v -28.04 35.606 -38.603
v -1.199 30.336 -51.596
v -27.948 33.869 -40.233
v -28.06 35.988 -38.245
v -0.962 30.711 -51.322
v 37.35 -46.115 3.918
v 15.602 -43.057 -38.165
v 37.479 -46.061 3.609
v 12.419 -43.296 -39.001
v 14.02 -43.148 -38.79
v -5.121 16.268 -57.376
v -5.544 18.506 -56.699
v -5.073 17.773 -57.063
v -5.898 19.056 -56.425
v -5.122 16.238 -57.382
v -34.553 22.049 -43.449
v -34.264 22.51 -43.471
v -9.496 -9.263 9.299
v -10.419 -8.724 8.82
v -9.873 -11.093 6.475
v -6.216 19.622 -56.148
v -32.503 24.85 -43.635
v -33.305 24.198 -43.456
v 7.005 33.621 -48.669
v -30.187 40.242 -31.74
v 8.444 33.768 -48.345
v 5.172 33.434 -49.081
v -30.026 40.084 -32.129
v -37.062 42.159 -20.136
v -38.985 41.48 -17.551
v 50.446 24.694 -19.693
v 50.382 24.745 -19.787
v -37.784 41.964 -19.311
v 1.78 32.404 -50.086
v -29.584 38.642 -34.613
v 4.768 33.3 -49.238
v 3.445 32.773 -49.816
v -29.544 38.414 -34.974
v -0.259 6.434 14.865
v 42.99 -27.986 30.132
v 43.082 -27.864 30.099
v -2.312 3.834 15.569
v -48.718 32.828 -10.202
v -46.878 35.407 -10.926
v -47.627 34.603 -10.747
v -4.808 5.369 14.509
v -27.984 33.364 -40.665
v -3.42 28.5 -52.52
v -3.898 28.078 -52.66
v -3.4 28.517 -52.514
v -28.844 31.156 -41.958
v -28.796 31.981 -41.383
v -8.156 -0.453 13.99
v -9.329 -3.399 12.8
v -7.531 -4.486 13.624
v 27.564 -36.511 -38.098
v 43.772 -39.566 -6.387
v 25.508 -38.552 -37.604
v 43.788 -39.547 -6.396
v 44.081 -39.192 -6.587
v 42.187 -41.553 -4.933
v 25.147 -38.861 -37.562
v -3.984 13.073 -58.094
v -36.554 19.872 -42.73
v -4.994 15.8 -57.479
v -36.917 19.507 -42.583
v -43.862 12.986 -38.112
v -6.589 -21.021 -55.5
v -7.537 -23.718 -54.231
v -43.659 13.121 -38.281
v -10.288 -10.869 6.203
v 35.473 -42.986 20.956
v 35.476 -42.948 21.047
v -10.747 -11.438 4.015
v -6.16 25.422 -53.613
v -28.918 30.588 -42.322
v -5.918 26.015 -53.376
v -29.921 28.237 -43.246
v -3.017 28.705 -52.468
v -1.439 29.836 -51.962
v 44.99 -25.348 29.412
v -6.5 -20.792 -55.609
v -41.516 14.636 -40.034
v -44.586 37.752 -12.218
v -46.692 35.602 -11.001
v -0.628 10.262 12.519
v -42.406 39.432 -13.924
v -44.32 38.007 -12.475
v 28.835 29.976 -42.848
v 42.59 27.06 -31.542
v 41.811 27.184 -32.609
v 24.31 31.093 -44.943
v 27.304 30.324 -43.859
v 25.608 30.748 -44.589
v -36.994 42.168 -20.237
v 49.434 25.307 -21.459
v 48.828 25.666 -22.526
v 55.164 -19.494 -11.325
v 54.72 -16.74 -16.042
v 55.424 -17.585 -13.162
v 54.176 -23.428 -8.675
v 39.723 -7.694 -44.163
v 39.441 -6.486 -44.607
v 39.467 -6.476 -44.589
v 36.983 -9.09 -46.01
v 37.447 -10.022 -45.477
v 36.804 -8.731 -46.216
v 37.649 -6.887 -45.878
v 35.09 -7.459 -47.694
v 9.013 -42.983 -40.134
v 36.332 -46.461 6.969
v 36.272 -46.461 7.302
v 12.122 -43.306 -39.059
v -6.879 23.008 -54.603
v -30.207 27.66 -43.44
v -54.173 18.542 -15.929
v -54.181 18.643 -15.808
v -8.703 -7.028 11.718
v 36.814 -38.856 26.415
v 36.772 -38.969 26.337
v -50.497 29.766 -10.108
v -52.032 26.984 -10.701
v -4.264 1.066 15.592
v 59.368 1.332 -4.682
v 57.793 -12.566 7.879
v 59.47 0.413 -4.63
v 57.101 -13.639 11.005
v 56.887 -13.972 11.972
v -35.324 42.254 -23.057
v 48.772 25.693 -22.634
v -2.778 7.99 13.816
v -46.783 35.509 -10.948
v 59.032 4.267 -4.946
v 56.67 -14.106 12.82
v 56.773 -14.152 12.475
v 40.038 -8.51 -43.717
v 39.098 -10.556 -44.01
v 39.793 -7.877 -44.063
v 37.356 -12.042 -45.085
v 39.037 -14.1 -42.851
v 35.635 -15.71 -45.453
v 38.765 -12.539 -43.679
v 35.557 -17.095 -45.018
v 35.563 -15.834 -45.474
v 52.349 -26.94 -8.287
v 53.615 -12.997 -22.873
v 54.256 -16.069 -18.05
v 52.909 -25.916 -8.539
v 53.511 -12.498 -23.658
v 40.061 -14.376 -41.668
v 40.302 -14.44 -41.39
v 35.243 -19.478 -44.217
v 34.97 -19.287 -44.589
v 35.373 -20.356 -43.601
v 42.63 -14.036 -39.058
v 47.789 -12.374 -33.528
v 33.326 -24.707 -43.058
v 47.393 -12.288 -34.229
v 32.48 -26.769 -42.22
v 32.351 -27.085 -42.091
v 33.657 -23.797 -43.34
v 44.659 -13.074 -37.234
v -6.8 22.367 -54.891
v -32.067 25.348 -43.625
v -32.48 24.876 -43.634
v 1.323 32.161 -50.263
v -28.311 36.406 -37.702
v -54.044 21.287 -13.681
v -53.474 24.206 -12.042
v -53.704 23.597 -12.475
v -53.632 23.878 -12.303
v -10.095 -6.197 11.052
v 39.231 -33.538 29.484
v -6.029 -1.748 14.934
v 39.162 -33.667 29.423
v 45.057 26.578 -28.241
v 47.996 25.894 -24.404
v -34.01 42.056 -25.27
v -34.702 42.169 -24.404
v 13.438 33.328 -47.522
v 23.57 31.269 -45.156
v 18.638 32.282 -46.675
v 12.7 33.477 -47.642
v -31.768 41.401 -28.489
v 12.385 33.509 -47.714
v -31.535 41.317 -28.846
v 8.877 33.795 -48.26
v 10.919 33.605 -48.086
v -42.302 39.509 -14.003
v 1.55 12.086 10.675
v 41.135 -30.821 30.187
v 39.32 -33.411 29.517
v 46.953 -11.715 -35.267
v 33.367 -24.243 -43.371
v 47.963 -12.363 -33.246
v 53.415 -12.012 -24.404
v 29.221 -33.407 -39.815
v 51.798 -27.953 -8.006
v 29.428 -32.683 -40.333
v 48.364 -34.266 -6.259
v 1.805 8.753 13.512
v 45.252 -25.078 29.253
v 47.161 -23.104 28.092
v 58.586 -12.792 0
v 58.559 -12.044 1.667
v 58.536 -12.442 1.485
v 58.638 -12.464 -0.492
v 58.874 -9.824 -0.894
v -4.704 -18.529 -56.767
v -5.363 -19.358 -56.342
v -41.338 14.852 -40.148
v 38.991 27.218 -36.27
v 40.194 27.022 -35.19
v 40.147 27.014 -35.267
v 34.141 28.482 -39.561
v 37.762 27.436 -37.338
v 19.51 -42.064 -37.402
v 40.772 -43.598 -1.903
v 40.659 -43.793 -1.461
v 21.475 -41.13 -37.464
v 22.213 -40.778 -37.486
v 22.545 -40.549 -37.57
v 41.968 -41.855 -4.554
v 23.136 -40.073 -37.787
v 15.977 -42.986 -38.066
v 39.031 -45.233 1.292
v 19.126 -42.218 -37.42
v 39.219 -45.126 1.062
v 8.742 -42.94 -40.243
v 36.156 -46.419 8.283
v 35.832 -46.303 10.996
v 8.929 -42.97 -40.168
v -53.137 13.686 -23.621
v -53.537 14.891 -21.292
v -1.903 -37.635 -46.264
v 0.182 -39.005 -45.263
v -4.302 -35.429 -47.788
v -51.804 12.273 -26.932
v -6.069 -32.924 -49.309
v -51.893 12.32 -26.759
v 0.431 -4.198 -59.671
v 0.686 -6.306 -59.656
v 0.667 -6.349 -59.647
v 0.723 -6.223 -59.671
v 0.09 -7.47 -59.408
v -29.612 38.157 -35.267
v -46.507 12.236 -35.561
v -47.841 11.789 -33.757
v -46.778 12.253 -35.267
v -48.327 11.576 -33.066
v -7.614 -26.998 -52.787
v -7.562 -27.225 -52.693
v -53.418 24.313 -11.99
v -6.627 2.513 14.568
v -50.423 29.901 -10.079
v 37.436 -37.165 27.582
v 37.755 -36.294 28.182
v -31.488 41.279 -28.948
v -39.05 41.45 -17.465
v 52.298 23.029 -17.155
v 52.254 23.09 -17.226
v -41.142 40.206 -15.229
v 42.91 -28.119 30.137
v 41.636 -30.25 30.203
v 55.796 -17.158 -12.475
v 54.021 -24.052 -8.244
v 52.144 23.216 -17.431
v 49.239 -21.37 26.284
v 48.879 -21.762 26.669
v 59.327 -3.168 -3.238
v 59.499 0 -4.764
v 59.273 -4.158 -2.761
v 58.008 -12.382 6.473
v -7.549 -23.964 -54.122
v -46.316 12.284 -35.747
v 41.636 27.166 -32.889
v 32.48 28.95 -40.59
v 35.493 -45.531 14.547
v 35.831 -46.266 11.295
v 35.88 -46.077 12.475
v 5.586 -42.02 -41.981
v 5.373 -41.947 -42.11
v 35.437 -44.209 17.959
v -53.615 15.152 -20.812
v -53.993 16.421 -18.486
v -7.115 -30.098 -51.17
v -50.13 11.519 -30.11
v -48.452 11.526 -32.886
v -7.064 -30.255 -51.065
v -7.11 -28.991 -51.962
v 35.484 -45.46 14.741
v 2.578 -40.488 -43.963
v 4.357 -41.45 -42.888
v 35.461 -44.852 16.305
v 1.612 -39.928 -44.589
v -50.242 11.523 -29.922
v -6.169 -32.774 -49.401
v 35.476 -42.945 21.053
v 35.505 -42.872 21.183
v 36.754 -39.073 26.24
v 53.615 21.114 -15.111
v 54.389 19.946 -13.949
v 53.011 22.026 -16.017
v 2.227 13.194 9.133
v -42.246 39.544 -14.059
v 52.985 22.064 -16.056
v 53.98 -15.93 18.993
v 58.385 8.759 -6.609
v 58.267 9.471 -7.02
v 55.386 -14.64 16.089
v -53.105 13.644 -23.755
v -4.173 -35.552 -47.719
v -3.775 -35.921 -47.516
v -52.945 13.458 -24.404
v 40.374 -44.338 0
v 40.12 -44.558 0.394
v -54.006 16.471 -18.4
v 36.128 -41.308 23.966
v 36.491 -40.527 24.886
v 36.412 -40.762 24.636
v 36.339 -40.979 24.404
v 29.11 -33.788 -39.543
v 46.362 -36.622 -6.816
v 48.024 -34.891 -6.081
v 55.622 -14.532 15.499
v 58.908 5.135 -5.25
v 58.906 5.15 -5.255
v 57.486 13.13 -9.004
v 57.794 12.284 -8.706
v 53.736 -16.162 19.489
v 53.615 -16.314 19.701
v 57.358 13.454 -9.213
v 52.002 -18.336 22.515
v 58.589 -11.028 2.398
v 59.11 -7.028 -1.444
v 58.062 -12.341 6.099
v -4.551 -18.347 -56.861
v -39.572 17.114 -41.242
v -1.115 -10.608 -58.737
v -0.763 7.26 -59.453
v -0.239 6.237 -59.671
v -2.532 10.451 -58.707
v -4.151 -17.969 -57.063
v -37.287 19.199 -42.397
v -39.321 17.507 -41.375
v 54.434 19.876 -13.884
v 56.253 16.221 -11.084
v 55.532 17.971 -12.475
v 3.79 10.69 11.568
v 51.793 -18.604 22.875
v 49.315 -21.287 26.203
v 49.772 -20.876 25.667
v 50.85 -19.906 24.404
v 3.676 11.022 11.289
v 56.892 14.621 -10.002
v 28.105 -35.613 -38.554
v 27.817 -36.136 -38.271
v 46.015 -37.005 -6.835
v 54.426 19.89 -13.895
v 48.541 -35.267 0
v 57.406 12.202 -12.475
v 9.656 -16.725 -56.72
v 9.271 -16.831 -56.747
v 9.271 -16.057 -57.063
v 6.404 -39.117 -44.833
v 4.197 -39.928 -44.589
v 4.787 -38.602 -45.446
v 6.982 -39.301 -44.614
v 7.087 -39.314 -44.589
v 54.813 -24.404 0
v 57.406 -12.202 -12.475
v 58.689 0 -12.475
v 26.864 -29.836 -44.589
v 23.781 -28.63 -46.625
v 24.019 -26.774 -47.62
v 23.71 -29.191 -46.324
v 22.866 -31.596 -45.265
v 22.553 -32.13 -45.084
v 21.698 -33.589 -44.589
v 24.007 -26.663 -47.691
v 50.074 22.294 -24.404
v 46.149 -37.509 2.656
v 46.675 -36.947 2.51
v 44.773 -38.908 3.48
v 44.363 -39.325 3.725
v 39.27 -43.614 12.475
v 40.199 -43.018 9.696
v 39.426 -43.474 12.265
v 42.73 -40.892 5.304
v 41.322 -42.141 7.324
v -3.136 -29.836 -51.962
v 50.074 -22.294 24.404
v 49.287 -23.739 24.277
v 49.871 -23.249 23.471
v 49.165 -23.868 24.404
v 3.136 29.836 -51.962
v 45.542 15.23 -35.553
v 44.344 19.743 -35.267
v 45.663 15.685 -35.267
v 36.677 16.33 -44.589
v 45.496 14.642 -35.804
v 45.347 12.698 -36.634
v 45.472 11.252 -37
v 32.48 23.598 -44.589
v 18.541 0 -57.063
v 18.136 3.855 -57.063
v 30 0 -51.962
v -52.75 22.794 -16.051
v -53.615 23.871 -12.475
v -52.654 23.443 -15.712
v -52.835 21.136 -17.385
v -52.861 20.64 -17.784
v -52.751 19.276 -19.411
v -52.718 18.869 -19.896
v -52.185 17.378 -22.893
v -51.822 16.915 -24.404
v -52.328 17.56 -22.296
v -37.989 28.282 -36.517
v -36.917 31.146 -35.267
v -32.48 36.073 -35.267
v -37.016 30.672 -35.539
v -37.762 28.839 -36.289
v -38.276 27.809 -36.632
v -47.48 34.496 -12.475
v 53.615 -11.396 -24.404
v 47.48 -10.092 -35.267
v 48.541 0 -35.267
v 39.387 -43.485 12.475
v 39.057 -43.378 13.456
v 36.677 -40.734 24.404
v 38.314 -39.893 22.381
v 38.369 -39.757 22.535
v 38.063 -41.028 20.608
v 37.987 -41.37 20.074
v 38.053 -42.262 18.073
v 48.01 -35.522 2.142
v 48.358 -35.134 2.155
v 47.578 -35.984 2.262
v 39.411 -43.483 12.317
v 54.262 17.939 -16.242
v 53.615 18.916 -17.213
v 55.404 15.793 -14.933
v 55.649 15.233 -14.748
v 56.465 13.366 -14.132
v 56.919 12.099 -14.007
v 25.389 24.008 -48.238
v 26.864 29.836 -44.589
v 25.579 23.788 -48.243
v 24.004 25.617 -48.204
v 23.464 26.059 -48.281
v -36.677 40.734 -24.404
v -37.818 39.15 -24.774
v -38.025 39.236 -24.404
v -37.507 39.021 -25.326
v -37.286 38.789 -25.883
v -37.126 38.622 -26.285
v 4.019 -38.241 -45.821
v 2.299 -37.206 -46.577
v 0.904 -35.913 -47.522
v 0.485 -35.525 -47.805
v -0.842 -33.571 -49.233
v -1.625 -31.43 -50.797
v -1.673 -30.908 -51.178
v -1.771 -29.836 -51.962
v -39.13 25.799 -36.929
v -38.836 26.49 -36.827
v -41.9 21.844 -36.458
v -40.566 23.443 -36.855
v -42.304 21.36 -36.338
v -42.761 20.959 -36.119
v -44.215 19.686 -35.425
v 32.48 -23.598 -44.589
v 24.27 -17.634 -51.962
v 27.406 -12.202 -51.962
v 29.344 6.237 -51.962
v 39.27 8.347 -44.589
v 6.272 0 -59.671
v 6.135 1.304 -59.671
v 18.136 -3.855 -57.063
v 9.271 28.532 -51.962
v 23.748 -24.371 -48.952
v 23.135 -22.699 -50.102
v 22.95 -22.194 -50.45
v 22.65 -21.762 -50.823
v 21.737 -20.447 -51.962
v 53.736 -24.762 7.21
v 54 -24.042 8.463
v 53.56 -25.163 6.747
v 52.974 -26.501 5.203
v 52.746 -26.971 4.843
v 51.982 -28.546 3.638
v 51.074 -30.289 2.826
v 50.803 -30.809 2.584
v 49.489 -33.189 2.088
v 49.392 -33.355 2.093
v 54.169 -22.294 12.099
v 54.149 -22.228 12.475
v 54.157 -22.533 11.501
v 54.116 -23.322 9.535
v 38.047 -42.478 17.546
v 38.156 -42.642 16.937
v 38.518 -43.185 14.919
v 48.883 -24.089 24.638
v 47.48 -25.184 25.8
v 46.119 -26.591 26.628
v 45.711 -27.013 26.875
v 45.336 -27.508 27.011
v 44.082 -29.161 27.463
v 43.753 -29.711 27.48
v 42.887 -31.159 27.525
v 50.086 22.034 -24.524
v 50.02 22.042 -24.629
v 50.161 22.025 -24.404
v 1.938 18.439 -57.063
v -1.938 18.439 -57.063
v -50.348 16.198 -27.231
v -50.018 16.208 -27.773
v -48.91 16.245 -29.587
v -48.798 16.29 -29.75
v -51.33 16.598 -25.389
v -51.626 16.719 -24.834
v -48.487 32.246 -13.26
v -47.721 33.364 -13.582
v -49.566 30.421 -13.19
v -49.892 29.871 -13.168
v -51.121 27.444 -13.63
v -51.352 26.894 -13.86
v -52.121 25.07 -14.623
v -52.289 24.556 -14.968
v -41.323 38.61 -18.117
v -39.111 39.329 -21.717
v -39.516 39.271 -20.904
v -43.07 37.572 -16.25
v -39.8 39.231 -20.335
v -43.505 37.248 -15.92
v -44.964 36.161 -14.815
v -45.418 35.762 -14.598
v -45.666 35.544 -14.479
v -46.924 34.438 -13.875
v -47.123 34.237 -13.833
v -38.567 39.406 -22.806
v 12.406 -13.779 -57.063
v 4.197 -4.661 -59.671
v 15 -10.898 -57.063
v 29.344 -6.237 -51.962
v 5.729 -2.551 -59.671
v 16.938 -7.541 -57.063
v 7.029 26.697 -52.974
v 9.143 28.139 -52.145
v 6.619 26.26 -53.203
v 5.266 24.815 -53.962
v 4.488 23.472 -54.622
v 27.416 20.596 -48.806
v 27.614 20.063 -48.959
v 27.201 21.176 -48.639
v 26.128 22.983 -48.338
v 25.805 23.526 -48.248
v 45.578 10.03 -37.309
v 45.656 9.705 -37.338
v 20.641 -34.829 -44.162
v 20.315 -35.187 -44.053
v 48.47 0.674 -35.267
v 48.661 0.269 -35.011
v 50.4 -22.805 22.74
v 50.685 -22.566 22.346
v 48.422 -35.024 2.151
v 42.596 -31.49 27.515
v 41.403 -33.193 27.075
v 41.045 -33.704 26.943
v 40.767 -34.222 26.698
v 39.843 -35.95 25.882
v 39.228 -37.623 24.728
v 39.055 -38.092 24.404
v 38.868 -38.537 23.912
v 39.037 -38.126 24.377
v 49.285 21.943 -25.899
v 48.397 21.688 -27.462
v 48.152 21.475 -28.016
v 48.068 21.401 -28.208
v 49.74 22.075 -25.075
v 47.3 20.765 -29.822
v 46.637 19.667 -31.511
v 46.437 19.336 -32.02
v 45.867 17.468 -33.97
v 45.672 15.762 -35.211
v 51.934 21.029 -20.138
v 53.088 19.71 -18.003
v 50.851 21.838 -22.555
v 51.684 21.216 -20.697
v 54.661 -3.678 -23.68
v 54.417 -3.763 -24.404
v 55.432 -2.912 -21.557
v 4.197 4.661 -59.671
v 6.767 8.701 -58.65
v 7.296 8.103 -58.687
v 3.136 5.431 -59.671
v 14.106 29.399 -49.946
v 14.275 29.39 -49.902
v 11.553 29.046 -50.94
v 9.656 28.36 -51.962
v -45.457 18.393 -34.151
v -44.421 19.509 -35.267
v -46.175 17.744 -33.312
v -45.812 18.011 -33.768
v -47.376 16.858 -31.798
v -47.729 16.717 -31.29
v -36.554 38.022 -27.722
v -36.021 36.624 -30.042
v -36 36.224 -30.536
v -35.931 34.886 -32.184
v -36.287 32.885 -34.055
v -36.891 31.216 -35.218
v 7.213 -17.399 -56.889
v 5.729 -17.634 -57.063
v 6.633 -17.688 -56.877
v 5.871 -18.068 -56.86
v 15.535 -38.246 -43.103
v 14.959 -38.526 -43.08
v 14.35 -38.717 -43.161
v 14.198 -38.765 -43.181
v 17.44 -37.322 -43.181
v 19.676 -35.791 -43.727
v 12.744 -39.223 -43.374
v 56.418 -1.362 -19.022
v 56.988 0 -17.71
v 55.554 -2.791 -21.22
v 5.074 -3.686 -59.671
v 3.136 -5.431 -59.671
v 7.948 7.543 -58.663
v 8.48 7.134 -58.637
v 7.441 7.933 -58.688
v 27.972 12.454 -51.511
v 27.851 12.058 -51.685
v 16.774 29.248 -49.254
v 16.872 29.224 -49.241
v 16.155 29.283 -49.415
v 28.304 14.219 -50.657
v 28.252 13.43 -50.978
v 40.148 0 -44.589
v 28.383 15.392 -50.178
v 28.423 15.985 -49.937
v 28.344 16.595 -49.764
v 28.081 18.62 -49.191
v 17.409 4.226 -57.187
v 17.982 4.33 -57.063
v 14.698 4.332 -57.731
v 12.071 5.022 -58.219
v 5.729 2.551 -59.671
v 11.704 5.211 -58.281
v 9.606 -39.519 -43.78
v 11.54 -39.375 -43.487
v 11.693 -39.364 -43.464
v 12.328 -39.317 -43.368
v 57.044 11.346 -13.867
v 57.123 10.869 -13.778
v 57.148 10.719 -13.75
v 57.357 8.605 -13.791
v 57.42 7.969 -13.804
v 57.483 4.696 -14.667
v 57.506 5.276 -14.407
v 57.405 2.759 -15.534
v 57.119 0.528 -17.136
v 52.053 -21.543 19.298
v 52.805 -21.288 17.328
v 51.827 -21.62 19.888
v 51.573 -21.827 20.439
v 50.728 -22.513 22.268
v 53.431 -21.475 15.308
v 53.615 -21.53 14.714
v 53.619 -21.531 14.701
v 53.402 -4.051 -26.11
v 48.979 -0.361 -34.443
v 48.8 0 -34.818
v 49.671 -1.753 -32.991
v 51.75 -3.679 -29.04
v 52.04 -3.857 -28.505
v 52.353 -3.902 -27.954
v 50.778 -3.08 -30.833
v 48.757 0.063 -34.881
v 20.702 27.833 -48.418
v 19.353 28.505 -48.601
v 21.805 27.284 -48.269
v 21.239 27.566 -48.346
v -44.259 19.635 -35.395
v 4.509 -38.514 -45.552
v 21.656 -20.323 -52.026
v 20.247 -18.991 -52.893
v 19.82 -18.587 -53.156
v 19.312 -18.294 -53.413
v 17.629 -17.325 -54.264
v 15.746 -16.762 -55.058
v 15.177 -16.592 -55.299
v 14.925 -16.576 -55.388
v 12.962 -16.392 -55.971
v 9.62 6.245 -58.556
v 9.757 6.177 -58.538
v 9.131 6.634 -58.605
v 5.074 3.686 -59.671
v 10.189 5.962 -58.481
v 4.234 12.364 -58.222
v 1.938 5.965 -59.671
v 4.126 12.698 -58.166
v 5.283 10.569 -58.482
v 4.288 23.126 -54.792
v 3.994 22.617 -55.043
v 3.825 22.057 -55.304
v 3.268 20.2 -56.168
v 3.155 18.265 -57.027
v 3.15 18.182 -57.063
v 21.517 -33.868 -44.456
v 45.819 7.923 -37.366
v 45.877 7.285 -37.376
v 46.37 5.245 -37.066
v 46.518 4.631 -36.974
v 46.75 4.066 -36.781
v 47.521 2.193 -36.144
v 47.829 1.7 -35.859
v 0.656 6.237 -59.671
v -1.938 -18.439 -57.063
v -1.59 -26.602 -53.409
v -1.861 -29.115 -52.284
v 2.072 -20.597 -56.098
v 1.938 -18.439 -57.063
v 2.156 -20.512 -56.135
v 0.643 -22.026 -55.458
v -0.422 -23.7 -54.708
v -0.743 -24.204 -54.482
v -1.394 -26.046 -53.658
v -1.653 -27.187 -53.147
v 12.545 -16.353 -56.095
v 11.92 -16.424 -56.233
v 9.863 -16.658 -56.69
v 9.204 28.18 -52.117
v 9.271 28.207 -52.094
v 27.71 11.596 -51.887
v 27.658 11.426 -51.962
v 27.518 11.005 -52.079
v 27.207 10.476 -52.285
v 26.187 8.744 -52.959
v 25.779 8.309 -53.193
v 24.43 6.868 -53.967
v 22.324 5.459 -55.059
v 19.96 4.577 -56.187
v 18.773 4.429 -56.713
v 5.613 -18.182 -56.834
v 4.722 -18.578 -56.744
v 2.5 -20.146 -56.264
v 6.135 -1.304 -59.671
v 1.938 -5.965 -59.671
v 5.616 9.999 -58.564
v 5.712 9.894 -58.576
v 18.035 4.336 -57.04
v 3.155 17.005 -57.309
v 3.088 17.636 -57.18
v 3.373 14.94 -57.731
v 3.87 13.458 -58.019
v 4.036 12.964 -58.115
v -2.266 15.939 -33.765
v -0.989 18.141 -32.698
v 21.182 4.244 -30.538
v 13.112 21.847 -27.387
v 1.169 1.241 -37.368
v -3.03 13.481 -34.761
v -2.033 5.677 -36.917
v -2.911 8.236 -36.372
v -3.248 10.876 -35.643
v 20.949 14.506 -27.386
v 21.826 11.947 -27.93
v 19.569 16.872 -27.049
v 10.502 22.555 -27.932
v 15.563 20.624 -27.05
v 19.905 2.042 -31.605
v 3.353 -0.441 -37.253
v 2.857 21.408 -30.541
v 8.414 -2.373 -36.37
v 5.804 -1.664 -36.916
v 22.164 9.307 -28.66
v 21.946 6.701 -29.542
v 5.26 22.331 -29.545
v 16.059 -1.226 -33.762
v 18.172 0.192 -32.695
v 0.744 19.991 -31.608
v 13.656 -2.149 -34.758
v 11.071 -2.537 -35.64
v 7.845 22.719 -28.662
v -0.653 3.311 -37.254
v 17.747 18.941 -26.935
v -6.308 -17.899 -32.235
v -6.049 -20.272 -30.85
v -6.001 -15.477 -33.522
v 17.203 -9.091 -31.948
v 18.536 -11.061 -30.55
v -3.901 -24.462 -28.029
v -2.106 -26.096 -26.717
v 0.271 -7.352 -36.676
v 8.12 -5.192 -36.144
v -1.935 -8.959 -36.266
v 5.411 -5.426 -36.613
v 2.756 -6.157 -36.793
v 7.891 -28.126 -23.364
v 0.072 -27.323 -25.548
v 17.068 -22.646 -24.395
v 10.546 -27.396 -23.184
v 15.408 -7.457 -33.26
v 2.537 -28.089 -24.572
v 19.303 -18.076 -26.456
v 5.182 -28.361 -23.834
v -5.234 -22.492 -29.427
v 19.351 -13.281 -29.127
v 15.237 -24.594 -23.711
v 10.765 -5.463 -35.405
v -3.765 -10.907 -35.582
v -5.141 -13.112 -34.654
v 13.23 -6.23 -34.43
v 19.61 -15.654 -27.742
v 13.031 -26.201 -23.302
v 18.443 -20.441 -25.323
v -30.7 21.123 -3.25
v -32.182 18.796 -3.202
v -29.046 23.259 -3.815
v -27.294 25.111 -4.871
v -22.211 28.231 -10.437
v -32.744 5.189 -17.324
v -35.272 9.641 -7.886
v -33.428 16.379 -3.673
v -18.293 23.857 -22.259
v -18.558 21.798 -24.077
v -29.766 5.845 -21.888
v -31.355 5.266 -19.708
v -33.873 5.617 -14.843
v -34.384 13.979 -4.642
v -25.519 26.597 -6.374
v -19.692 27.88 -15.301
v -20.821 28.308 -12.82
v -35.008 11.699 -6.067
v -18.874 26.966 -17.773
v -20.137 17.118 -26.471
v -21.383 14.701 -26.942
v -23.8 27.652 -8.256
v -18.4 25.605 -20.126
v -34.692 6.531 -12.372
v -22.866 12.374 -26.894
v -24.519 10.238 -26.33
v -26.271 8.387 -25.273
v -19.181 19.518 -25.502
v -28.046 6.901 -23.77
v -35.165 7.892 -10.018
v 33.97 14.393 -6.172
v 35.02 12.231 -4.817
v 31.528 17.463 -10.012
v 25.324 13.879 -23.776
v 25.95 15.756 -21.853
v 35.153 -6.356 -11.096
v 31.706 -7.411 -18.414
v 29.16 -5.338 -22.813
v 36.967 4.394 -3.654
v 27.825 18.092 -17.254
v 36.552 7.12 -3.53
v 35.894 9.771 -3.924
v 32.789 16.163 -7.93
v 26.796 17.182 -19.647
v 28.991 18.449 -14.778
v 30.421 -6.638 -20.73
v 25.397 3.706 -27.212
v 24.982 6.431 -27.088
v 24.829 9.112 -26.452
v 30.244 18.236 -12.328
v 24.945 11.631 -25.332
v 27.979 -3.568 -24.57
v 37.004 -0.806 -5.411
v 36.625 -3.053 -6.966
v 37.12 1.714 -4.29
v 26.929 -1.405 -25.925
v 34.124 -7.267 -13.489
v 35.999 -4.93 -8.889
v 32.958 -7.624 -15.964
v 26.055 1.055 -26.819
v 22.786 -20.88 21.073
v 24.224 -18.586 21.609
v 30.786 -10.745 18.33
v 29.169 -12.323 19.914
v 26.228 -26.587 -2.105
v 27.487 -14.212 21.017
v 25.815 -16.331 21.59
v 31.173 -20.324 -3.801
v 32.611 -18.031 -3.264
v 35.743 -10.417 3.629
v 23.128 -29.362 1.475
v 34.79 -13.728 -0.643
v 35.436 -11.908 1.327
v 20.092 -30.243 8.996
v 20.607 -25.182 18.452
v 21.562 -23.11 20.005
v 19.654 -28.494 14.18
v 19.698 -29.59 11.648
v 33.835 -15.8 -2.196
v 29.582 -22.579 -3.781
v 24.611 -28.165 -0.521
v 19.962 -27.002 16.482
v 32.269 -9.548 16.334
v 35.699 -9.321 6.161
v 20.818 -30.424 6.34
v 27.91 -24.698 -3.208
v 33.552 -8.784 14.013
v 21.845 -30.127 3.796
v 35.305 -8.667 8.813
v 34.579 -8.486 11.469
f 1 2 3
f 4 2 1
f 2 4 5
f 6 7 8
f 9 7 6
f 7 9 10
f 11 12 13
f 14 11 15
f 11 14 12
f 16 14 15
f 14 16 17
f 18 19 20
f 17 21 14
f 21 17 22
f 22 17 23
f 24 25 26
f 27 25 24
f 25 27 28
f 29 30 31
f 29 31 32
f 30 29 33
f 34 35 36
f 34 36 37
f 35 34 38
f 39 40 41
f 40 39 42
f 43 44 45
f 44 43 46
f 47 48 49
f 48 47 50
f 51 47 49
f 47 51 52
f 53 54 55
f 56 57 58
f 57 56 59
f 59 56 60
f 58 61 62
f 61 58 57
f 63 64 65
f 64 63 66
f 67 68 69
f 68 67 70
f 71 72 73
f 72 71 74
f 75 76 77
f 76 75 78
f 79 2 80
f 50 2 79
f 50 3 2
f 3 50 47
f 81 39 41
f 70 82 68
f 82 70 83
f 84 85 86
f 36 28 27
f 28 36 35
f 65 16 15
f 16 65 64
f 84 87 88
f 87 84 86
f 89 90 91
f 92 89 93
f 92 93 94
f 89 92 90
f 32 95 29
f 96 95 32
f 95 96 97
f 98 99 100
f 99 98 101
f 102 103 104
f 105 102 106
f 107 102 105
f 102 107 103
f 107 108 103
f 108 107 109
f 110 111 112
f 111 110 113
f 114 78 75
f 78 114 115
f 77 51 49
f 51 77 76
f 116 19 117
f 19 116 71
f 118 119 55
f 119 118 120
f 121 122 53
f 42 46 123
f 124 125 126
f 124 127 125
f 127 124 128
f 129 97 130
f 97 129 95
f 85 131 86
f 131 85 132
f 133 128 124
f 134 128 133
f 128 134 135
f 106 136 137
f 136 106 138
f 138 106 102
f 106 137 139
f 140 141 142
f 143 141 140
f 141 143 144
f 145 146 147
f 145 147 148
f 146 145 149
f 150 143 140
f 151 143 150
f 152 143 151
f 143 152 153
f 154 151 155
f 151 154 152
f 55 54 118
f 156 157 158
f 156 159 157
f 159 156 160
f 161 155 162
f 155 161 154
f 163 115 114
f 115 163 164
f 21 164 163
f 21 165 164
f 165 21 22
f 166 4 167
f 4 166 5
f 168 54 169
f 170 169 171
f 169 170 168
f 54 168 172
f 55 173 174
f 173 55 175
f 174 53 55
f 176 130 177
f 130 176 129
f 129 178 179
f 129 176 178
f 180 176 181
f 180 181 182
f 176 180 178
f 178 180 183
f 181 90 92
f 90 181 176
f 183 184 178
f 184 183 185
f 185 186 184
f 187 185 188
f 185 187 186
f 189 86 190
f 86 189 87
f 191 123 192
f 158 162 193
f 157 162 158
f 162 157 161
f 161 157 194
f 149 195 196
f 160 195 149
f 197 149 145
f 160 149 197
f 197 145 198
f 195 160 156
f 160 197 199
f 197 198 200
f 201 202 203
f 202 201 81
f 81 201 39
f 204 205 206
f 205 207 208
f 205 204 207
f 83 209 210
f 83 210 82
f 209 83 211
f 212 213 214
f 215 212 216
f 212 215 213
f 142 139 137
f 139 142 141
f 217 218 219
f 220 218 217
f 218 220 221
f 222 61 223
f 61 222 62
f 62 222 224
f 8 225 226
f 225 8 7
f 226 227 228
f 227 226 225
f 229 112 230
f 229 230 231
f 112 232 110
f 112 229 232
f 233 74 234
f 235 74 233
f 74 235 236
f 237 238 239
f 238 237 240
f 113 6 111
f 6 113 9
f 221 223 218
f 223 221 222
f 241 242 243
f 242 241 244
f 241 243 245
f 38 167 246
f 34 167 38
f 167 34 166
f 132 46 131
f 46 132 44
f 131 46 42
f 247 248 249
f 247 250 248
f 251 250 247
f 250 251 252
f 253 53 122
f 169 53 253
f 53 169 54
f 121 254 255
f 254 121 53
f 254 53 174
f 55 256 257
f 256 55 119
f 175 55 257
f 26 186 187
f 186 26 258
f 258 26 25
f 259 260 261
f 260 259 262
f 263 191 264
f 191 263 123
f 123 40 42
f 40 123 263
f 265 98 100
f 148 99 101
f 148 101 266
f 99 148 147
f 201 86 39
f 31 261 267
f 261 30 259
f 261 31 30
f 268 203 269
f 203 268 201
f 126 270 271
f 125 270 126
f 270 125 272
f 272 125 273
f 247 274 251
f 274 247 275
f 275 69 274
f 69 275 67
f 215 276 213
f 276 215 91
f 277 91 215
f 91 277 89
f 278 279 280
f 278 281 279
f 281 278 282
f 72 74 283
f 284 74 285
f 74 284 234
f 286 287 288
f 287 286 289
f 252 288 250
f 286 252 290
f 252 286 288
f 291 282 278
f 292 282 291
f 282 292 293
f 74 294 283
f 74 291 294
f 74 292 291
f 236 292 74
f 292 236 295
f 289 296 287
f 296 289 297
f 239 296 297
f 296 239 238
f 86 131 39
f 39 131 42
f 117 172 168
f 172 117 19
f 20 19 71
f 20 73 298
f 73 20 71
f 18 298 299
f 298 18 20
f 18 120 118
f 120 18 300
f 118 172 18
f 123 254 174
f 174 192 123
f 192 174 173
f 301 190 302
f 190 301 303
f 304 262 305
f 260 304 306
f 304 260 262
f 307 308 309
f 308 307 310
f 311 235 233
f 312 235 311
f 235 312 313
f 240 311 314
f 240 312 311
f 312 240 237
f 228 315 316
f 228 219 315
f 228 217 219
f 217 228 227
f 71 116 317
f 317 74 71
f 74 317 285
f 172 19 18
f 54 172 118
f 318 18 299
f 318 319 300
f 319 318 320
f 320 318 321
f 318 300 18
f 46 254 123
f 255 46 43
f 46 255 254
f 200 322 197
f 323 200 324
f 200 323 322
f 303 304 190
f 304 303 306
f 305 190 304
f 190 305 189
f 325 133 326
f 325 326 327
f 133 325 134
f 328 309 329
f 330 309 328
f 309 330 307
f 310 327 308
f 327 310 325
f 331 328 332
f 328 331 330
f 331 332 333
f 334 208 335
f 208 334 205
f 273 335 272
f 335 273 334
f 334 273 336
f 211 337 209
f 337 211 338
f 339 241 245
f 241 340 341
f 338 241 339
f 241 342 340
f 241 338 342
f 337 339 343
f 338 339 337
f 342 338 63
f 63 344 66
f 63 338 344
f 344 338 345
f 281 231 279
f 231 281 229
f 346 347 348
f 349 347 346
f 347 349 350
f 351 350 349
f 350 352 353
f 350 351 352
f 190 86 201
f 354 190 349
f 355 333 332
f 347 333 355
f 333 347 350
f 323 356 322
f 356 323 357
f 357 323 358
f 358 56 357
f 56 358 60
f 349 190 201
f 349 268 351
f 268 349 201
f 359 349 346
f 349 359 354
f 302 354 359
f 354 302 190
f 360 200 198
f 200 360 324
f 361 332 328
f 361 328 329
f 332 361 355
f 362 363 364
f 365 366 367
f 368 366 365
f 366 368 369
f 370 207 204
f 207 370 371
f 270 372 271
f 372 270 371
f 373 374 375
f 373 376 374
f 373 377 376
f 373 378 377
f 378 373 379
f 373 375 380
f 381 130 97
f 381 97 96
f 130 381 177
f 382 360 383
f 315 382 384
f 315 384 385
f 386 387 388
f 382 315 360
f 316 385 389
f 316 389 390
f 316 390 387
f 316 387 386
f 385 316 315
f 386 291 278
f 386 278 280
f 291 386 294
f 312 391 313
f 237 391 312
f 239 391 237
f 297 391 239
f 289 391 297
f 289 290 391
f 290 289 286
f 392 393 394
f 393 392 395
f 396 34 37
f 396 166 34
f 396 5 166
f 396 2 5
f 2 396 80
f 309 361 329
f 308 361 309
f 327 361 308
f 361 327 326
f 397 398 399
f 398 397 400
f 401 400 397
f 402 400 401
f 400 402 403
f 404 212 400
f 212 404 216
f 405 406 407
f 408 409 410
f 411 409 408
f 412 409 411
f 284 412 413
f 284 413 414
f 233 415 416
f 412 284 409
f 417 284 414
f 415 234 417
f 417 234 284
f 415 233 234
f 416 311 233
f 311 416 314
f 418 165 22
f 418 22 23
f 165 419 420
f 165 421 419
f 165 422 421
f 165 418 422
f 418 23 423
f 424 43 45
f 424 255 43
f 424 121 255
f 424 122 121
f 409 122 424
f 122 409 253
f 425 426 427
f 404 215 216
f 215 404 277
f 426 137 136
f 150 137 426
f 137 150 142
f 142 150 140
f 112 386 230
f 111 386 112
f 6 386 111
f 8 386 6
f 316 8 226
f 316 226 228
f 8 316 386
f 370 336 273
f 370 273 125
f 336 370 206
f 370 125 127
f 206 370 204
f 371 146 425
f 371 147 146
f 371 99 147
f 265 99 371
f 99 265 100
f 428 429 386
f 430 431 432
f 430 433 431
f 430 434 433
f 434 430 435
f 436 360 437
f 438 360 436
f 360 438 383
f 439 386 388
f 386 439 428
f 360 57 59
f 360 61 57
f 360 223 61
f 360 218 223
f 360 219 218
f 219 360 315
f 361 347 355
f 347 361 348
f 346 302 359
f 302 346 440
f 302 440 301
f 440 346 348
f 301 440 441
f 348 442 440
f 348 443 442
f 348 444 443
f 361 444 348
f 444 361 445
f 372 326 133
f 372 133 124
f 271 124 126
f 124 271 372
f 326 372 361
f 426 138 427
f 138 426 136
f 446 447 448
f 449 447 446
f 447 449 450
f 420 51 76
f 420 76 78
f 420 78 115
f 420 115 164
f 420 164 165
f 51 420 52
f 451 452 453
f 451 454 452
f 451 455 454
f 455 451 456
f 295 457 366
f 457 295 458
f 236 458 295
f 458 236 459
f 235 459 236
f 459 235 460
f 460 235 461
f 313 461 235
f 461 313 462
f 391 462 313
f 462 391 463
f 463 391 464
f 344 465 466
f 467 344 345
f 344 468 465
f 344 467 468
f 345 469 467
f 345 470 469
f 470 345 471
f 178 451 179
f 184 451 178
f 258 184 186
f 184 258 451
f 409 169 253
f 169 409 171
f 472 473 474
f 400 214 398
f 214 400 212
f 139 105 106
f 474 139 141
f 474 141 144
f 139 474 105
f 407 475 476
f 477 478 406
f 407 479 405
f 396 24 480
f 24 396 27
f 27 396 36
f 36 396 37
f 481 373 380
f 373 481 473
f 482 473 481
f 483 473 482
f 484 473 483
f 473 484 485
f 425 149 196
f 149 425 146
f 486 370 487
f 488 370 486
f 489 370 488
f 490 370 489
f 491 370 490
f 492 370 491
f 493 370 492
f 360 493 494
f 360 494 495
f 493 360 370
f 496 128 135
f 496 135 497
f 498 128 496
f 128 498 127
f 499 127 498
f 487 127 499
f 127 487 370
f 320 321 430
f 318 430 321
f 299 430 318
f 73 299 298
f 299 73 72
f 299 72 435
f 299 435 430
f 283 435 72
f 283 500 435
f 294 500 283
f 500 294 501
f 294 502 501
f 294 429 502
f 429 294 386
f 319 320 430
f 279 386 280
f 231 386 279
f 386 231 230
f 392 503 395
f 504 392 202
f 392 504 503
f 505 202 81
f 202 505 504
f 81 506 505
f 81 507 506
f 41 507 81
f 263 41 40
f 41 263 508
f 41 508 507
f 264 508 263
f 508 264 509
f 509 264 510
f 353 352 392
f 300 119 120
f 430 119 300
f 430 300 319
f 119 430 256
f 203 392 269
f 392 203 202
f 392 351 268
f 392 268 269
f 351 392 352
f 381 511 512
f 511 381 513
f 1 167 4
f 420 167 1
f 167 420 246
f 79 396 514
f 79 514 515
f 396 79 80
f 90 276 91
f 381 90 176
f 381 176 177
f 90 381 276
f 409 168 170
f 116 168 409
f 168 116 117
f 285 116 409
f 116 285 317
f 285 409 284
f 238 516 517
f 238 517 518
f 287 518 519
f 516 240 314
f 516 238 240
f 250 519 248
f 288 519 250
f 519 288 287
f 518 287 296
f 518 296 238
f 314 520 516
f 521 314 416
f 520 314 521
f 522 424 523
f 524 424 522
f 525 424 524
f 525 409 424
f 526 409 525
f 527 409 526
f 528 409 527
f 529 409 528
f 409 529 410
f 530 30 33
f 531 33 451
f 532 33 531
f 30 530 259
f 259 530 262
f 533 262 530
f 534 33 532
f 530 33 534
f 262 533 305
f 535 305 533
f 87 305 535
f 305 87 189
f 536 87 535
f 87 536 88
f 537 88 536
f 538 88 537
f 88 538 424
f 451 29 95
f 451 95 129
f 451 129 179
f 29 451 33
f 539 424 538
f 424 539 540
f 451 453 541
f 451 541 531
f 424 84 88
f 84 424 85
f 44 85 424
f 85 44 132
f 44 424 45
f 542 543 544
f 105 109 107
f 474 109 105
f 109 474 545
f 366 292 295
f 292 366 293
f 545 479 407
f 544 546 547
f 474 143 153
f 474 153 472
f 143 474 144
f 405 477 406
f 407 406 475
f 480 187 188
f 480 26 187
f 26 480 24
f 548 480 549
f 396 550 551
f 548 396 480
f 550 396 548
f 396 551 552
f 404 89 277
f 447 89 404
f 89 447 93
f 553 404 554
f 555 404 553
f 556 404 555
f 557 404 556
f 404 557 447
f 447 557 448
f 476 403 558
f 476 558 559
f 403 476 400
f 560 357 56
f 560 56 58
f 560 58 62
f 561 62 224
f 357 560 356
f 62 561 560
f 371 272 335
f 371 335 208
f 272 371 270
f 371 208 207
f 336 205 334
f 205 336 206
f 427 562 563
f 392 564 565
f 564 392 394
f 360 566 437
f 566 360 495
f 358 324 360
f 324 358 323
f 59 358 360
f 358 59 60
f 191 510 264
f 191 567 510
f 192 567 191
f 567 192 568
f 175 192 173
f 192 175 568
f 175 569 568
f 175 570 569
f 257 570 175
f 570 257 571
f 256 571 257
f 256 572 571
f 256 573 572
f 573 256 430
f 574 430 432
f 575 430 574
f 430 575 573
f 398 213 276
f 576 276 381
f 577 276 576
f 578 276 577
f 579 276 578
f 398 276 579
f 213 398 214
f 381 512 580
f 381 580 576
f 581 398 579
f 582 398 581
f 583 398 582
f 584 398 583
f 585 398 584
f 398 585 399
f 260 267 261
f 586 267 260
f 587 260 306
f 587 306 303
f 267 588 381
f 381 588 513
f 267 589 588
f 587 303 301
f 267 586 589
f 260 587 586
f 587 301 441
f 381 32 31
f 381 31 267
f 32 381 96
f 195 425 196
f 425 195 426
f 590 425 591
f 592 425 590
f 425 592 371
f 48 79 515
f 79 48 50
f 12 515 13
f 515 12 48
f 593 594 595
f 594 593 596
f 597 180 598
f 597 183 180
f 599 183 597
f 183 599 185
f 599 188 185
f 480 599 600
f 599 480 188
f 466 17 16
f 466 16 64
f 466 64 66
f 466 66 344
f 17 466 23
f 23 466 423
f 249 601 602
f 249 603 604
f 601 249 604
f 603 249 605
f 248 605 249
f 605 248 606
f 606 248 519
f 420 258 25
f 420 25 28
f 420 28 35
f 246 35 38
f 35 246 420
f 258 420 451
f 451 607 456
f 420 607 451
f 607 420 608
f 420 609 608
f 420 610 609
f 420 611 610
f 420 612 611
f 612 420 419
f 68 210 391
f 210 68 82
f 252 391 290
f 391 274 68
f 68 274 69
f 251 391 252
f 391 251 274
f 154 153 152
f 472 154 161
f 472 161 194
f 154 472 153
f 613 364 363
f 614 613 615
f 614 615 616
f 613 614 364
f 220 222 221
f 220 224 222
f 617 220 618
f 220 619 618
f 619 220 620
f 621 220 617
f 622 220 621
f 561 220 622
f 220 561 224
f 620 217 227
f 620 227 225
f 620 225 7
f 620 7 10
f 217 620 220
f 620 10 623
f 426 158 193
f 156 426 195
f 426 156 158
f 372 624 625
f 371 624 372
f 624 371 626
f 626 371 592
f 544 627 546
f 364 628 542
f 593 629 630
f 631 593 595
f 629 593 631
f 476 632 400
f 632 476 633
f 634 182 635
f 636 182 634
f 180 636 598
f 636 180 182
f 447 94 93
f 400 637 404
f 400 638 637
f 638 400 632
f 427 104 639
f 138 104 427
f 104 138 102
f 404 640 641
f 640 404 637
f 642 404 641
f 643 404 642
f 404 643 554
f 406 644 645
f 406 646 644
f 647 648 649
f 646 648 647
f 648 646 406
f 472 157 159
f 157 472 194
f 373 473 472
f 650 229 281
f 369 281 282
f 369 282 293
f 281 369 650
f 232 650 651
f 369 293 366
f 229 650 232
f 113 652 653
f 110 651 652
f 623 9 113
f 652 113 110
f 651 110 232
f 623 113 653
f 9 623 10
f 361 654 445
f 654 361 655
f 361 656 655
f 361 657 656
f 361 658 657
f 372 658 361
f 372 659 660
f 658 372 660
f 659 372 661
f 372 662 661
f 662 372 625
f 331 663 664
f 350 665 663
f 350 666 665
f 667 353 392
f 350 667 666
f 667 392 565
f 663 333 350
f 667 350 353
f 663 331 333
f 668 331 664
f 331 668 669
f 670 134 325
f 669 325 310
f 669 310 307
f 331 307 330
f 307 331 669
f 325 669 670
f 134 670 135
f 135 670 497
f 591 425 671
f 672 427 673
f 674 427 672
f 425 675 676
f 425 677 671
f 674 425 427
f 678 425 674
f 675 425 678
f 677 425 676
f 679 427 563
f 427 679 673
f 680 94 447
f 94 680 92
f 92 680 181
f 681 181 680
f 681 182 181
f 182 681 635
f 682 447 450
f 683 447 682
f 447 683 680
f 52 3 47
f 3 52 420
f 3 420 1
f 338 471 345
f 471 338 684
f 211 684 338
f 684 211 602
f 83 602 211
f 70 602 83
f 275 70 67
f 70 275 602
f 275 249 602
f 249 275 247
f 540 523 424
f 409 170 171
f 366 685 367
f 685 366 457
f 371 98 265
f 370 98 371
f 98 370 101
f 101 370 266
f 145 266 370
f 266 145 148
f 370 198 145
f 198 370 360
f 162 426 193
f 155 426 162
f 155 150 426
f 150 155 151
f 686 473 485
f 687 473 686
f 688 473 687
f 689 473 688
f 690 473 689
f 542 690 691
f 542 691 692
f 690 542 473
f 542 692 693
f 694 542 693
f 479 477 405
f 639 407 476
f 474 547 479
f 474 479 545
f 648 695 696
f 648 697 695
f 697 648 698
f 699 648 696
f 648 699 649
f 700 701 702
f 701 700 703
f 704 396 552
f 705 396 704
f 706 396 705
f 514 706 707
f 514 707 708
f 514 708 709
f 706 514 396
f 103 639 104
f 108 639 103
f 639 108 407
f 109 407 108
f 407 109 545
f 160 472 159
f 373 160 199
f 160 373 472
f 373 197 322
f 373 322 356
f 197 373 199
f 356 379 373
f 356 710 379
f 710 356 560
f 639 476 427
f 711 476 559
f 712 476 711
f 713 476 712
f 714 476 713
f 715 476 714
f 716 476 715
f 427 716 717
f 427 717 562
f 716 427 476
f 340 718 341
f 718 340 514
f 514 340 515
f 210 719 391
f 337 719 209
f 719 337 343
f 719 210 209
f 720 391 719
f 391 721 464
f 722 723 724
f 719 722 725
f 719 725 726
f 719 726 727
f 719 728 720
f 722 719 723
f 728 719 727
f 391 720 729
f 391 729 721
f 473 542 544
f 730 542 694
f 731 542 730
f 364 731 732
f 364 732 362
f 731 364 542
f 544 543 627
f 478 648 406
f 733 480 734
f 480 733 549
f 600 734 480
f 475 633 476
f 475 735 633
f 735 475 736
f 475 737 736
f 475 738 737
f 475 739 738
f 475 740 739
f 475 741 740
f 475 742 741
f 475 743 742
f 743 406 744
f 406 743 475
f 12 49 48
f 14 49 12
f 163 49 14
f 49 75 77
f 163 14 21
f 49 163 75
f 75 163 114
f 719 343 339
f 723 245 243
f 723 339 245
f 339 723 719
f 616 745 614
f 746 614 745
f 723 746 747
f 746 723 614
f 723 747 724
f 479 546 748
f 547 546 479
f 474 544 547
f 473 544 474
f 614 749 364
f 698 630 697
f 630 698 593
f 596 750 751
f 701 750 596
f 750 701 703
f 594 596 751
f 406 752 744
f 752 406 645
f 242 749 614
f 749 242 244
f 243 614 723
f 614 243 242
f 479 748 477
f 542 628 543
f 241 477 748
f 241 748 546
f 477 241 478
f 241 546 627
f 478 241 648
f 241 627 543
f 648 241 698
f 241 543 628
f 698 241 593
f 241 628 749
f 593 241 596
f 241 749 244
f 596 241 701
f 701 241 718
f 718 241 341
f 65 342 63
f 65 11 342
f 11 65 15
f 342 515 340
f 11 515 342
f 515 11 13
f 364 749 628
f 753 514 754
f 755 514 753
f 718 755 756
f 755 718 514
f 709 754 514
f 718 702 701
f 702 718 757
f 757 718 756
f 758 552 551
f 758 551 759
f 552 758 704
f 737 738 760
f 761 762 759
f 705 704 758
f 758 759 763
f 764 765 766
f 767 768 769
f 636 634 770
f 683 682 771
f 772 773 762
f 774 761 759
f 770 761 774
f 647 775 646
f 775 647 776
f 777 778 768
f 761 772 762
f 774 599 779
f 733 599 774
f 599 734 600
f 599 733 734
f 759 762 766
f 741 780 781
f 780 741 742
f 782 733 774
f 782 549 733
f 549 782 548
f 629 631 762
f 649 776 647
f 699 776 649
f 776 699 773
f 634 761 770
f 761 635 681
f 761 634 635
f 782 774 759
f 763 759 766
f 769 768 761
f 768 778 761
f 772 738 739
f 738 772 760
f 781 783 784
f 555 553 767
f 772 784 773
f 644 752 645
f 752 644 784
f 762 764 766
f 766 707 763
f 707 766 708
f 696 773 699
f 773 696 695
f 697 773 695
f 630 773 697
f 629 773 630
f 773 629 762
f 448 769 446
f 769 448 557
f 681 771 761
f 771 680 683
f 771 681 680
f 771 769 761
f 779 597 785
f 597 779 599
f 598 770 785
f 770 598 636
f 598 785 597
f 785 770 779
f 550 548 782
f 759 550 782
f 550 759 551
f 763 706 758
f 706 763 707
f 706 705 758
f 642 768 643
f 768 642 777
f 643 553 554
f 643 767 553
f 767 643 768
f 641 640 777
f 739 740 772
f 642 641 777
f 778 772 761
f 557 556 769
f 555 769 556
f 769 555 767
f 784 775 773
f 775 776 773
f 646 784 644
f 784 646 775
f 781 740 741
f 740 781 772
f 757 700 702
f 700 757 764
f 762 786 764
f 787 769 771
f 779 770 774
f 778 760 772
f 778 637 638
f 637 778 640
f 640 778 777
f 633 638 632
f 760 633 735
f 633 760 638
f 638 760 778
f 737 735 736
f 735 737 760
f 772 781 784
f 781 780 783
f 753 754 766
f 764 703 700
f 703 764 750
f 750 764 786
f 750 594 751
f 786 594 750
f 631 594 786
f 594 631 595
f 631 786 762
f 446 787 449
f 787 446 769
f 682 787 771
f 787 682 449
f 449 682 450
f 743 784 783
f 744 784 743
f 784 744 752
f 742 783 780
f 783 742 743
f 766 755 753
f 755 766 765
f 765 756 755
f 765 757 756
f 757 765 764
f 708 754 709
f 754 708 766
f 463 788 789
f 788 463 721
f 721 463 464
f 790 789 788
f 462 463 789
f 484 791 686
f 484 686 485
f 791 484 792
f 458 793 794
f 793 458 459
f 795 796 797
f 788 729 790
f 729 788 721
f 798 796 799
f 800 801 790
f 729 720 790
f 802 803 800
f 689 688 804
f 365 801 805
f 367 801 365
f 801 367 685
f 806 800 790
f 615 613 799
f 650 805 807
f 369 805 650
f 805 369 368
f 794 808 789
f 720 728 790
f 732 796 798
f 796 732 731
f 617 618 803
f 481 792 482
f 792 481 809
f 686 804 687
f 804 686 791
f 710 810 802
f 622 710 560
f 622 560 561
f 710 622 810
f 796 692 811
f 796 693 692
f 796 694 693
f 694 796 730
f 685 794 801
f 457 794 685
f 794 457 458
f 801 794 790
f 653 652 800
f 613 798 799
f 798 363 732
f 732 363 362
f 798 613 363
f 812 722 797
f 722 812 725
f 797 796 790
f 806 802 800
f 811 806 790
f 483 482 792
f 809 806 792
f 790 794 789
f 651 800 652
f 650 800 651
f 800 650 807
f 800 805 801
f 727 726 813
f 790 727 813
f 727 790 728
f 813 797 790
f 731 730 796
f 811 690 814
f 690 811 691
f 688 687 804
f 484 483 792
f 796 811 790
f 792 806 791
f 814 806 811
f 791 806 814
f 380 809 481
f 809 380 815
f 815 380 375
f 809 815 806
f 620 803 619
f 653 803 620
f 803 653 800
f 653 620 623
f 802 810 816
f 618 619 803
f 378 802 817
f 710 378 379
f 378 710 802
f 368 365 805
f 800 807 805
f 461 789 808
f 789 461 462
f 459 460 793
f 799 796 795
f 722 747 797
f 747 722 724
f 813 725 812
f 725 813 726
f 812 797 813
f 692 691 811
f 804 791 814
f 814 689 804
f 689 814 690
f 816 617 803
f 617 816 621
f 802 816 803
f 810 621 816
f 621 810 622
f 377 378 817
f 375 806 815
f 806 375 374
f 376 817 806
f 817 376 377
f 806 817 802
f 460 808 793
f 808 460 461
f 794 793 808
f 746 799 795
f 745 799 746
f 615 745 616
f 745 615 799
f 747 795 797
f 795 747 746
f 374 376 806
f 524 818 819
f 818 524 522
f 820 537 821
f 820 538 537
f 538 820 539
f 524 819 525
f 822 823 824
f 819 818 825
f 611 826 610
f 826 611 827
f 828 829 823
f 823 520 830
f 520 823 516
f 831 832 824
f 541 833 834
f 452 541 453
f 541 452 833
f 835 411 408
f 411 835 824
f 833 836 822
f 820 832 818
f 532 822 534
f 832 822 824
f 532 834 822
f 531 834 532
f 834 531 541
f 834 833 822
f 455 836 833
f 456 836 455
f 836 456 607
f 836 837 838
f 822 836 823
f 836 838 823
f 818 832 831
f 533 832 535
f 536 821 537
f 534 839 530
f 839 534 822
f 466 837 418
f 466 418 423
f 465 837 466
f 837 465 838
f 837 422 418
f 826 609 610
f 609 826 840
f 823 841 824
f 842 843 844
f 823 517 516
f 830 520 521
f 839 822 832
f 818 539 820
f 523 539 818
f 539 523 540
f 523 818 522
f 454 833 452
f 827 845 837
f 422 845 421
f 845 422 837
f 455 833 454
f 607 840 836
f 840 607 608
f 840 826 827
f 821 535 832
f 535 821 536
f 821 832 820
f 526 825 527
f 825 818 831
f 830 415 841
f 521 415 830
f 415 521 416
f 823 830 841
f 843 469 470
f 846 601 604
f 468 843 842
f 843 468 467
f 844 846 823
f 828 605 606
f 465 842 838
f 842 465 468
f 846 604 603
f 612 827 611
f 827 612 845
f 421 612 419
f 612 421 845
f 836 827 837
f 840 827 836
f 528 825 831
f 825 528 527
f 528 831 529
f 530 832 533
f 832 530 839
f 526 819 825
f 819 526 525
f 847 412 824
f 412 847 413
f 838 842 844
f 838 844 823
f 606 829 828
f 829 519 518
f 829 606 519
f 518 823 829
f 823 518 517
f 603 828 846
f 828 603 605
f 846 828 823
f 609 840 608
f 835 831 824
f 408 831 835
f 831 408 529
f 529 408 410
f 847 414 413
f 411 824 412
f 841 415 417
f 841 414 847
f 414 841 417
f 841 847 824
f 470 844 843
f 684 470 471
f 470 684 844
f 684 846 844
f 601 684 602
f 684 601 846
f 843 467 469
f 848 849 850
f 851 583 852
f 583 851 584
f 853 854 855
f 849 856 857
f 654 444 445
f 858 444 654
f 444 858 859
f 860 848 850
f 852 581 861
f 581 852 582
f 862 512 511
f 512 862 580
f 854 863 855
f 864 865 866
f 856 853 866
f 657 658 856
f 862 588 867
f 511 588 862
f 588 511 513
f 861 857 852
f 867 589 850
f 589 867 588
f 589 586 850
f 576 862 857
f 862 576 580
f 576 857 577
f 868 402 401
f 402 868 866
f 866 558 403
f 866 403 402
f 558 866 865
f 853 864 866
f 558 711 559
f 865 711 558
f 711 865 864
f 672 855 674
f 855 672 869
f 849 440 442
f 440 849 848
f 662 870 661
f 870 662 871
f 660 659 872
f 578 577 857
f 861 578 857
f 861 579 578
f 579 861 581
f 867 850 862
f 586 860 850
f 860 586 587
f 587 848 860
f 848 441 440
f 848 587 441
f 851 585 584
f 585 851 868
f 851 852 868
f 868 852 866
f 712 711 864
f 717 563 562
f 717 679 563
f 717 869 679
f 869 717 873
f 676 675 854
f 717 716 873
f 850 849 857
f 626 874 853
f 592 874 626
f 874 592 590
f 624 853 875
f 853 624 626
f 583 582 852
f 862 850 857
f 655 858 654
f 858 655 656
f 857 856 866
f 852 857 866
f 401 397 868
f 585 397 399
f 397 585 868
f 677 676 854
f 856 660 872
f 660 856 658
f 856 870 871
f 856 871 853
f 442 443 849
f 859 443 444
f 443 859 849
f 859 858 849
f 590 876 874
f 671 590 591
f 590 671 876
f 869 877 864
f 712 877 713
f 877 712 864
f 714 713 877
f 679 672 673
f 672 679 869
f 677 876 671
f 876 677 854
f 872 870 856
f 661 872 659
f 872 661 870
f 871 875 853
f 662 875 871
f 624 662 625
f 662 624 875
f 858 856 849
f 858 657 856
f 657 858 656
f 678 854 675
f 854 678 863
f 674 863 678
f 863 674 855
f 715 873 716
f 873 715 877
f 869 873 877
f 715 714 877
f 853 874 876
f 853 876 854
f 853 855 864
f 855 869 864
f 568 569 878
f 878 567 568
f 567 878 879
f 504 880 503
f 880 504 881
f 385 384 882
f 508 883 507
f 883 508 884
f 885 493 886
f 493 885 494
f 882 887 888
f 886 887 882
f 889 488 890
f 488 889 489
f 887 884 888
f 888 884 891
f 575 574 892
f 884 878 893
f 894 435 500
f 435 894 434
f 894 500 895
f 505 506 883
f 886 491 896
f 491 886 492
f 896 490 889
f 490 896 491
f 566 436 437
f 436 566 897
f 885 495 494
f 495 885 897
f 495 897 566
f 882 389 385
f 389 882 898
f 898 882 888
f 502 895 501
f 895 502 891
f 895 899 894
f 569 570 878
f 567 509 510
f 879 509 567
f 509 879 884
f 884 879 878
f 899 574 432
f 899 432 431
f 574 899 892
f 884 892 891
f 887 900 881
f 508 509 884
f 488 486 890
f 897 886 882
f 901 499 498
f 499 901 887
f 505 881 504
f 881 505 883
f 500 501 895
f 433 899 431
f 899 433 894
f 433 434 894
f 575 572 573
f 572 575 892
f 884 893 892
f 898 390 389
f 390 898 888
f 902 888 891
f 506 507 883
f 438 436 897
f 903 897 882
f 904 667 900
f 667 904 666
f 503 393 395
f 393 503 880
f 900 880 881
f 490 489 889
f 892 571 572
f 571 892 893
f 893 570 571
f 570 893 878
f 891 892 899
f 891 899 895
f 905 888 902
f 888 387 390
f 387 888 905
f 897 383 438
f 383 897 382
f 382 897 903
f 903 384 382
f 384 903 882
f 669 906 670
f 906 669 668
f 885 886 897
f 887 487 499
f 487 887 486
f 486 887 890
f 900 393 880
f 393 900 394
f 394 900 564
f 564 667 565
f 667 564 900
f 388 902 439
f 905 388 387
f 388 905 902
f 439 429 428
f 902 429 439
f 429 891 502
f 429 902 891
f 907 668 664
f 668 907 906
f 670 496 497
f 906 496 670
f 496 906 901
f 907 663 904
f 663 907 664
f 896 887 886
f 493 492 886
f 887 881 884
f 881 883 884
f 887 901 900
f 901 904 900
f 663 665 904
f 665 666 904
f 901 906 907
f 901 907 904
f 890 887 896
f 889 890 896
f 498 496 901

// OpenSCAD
difference() {
	intersection() {
		hull() {
			rotate(a = -104.9619843639, v = [0.0798051703, 0.9627955153, -0.0000000000]) {
				rotate(a = -90.0000000000, v = [0.3871471348, 0.9220179478, -0.0000000000]) {
					cylinder(h = 60, r = 16.2000000000);
				}
			}
			rotate(a = -104.9619843639, v = [0.0798051703, 0.9627955153, -0.0000000000]) {
				rotate(a = -90.0000000000, v = [-0.3871471348, 0.9220179478, 0.0000000000]) {
					cylinder(h = 60, r = 16.2000000000);
				}
			}
			rotate(a = -104.9619843639, v = [0.0798051703, 0.9627955153, -0.0000000000]) {
				rotate(a = -27.6102972421, v = [0.4295311738, 0.1740510927, -0.0000000000]) {
					cylinder(h = 60, r = 16.2000000000);
				}
			}
			rotate(a = -104.9619843639, v = [0.0798051703, 0.9627955153, -0.0000000000]) {
				rotate(a = -136.5800781830, v = [0.2800379438, 0.6277062716, -0.0000000000]) {
					cylinder(h = 60, r = 16.2000000000);
				}
			}
			rotate(a = -104.9619843639, v = [0.0798051703, 0.9627955153, -0.0000000000]) {
				rotate(a = -150.6905905926, v = [-0.4894203631, 0.0101528739, 0.0000000000]) {
					cylinder(h = 60, r = 16.2000000000);
				}
			}
		}
		sphere(r = 60);
	}
	union() {
		rotate(a = -104.9619843639, v = [0.0798051703, 0.9627955153, -0.0000000000]) {
			rotate(a = -90.0000000000, v = [0.3871471348, 0.9220179478, -0.0000000000]) {
				translate(v = [0, 0, 35]) {
					cylinder(h = 100, r = 13.2000000000);
				}
			}
		}
		rotate(a = -104.9619843639, v = [0.0798051703, 0.9627955153, -0.0000000000]) {
			rotate(a = -90.0000000000, v = [-0.3871471348, 0.9220179478, 0.0000000000]) {
				translate(v = [0, 0, 35]) {
					cylinder(h = 100, r = 13.2000000000);
				}
			}
		}
		rotate(a = -104.9619843639, v = [0.0798051703, 0.9627955153, -0.0000000000]) {
			rotate(a = -27.6102972421, v = [0.4295311738, 0.1740510927, -0.0000000000]) {
				translate(v = [0, 0, 35]) {
					cylinder(h = 100, r = 13.2000000000);
				}
			}
		}
		rotate(a = -104.9619843639, v = [0.0798051703, 0.9627955153, -0.0000000000]) {
			rotate(a = -136.5800781830, v = [0.2800379438, 0.6277062716, -0.0000000000]) {
				translate(v = [0, 0, 35]) {
					cylinder(h = 100, r = 13.2000000000);
				}
			}
		}
		rotate(a = -104.9619843639, v = [0.0798051703, 0.9627955153, -0.0000000000]) {
			rotate(a = -150.6905905926, v = [-0.4894203631, 0.0101528739, 0.0000000000]) {
				translate(v = [0, 0, 35]) {
					cylinder(h = 100, r = 13.2000000000);
				}
			}
		}
	}
}
